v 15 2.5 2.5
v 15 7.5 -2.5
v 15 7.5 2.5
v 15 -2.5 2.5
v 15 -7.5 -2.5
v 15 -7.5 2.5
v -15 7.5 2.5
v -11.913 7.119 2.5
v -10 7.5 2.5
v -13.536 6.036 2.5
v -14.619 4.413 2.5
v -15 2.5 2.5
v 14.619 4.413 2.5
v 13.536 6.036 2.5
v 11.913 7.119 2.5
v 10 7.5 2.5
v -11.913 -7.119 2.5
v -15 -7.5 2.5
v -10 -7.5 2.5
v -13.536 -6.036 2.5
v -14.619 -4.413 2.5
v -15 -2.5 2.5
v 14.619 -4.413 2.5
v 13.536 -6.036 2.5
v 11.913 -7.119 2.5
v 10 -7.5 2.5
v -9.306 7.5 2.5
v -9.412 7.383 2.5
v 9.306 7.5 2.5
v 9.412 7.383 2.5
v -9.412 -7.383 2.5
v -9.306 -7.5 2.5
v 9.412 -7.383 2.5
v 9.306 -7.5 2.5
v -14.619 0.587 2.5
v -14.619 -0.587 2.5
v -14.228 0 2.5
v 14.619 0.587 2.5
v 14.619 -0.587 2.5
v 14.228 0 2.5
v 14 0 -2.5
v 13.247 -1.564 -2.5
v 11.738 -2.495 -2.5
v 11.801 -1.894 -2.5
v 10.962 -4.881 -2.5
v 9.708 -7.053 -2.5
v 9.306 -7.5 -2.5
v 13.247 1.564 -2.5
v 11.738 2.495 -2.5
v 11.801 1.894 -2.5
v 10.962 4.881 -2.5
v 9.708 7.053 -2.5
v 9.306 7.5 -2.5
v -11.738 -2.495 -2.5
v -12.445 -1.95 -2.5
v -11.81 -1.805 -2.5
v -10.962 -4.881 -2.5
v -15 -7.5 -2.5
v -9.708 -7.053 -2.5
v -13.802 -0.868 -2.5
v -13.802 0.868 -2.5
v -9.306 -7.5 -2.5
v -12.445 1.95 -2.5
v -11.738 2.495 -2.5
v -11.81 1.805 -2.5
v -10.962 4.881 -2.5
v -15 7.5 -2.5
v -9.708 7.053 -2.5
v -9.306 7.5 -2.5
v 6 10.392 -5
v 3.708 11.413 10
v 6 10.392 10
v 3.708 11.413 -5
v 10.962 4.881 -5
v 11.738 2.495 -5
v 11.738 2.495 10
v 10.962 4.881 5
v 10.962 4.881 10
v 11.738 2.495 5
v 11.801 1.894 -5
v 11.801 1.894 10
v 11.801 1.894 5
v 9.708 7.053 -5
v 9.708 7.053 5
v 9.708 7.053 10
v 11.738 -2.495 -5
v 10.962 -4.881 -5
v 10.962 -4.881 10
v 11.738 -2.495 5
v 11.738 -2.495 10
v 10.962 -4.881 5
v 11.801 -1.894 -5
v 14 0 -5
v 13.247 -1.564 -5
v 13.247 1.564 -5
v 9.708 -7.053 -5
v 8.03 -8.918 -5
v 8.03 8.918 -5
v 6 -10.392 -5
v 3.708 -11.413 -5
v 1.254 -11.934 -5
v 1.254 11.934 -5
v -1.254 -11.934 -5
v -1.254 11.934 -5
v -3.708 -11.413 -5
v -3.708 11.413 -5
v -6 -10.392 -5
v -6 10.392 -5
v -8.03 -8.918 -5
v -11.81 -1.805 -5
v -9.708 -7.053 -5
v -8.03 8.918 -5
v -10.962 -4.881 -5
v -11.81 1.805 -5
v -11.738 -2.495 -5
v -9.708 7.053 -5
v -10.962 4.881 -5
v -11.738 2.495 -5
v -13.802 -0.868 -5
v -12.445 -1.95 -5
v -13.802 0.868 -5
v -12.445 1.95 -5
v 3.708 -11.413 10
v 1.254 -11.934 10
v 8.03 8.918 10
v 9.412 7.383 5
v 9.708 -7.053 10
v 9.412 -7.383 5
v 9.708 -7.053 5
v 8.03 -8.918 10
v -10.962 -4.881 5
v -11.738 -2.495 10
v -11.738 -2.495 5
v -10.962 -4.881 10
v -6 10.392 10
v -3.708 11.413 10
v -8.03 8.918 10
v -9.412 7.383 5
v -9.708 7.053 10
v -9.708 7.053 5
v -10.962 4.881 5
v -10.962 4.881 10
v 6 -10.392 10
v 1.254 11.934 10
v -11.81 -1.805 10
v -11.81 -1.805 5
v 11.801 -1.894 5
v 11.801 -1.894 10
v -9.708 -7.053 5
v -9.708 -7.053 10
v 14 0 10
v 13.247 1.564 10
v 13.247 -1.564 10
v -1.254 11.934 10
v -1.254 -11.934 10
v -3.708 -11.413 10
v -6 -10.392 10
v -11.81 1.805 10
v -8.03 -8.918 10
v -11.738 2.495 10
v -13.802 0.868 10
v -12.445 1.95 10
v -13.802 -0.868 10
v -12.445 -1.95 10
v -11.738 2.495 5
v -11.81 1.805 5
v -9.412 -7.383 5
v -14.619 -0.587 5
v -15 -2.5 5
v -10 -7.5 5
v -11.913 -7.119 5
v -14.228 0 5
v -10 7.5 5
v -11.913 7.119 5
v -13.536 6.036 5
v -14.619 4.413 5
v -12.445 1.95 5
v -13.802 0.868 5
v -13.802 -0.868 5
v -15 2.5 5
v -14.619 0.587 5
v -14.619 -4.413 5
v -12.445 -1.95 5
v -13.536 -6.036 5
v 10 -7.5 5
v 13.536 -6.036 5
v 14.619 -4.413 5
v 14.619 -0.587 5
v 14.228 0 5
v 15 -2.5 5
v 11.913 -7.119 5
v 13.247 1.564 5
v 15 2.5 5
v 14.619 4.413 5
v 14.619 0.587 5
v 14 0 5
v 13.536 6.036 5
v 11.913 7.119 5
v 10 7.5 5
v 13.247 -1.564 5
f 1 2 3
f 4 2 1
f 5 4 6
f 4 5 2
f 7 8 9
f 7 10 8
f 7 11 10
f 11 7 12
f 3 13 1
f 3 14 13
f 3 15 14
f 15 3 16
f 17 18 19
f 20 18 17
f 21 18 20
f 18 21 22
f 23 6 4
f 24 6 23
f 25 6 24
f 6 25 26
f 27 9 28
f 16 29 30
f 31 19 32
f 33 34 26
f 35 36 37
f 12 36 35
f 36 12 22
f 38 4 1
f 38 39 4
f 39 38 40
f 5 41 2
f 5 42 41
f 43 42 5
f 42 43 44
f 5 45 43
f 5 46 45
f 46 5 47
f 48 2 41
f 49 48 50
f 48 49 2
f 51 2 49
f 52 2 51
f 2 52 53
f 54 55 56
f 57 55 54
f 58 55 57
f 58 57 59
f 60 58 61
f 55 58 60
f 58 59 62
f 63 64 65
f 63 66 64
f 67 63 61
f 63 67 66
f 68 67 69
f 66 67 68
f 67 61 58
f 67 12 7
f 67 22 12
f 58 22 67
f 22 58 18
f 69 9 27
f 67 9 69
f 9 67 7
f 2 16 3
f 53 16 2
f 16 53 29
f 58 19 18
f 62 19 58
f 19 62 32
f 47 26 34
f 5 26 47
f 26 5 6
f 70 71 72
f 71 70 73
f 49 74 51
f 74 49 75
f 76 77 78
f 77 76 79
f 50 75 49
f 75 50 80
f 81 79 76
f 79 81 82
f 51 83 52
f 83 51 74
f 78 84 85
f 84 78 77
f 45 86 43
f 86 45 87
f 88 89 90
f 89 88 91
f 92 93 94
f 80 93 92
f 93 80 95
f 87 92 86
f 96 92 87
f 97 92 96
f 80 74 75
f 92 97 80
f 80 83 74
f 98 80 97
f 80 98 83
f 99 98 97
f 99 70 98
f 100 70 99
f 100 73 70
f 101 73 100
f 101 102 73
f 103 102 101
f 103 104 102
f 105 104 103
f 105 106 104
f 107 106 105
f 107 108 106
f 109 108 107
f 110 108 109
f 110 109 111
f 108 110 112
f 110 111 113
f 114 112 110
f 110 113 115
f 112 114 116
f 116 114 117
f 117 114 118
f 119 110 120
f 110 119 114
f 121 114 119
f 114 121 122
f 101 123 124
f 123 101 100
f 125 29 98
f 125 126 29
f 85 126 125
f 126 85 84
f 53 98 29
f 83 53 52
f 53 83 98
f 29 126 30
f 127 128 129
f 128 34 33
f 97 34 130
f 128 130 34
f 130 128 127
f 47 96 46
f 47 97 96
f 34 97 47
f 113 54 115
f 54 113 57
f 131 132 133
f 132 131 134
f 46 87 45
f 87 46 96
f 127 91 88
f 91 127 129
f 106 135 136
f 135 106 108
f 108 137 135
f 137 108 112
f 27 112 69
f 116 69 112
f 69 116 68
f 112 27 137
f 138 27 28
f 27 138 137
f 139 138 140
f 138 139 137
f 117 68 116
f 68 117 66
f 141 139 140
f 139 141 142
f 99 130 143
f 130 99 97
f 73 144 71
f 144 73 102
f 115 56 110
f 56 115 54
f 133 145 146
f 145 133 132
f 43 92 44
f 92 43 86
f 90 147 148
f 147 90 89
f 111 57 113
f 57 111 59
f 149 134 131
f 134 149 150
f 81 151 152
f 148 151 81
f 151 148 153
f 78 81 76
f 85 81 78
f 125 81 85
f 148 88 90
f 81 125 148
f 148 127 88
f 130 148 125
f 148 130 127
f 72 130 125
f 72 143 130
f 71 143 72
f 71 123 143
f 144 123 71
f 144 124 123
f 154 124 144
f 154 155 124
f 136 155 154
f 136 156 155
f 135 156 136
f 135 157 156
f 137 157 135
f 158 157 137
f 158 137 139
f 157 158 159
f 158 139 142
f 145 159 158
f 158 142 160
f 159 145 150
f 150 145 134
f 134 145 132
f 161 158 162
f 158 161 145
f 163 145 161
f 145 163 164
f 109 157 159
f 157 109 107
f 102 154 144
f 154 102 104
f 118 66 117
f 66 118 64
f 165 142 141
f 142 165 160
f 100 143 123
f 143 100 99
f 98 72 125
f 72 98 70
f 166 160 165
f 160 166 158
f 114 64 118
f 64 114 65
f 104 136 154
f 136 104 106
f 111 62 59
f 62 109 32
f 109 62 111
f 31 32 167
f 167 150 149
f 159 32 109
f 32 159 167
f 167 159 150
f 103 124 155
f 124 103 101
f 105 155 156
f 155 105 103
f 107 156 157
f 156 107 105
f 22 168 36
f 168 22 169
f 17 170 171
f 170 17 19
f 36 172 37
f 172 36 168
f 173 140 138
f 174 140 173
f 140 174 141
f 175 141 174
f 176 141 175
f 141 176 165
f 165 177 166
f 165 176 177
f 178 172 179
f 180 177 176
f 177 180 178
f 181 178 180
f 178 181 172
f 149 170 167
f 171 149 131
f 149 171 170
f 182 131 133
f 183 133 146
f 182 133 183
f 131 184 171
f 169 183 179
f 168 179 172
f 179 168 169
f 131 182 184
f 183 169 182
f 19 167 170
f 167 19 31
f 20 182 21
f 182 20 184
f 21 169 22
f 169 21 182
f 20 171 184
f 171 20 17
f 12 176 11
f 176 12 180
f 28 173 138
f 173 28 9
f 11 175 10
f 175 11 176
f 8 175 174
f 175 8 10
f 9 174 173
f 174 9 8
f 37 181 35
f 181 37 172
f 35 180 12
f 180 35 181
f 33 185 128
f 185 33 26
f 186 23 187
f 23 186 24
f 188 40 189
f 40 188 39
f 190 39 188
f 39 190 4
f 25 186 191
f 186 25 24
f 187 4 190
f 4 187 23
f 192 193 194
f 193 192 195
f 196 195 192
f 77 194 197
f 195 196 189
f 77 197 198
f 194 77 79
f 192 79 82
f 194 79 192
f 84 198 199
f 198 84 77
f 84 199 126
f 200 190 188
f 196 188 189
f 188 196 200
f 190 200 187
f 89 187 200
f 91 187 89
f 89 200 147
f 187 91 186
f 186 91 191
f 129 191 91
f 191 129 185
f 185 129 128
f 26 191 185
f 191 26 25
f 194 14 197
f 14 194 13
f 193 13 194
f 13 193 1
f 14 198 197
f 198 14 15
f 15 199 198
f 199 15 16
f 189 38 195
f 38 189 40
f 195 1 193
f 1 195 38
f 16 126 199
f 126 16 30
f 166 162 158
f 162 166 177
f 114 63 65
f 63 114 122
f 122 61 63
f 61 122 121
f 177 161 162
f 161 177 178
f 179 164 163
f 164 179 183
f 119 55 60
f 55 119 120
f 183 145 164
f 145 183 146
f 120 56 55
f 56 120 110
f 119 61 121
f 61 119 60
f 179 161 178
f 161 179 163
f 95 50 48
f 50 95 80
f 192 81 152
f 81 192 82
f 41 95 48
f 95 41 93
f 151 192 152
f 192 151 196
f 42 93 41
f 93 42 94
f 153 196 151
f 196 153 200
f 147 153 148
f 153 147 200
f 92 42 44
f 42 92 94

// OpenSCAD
// Variable declarations
cable_diameter = 20; // Diameter of the cable
clip_width = 30; // Width of the clip
clip_height = 15; // Height of the clip
clip_thickness = 5; // Thickness of the clip
clip_inner_gap = 2; // Gap inside the clip for cable clearance
clip_outer_radius = 5; // Radius of the outer rounded corners
clip_inner_radius = 2; // Radius of the inner rounded corners
tolerance = 0.2; // Tolerance for 3D printing

// Main clip body
union() {
    // Base of the clip
    difference() {
        cube([clip_width, clip_height, clip_thickness], center=true);
        translate([0, 0, -clip_thickness/2 - tolerance])
            cylinder(r=clip_outer_radius, h=clip_thickness + 2*tolerance, center=true);
    }
    // Inner gap for cable clearance
    translate([0, 0, clip_thickness/2])
        cylinder(r=(cable_diameter/2) + clip_inner_gap, h=clip_height, center=true);
}

// Rounded corners on the top
union() {
    for (i = [0:1]) {
        for (j = [0:1]) {
            translate([(-1 + 2*i)*(clip_width/2 - clip_outer_radius), (-1 + 2*j)*(clip_height/2 - clip_outer_radius), clip_thickness/2])
                cylinder(r=clip_outer_radius, h=clip_thickness, center=true);
        }
    }
}

// Rounded corners on the inner gap
union() {
    for (i = [0:1]) {
        translate([(-1 + 2*i)*(cable_diameter/2 + clip_inner_gap), 0, clip_thickness/2])
            cylinder(r=clip_inner_radius, h=clip_height, center=true);
    }
}

// Center the model at origin
translate([0, 0, -clip_thickness/2]) {}
